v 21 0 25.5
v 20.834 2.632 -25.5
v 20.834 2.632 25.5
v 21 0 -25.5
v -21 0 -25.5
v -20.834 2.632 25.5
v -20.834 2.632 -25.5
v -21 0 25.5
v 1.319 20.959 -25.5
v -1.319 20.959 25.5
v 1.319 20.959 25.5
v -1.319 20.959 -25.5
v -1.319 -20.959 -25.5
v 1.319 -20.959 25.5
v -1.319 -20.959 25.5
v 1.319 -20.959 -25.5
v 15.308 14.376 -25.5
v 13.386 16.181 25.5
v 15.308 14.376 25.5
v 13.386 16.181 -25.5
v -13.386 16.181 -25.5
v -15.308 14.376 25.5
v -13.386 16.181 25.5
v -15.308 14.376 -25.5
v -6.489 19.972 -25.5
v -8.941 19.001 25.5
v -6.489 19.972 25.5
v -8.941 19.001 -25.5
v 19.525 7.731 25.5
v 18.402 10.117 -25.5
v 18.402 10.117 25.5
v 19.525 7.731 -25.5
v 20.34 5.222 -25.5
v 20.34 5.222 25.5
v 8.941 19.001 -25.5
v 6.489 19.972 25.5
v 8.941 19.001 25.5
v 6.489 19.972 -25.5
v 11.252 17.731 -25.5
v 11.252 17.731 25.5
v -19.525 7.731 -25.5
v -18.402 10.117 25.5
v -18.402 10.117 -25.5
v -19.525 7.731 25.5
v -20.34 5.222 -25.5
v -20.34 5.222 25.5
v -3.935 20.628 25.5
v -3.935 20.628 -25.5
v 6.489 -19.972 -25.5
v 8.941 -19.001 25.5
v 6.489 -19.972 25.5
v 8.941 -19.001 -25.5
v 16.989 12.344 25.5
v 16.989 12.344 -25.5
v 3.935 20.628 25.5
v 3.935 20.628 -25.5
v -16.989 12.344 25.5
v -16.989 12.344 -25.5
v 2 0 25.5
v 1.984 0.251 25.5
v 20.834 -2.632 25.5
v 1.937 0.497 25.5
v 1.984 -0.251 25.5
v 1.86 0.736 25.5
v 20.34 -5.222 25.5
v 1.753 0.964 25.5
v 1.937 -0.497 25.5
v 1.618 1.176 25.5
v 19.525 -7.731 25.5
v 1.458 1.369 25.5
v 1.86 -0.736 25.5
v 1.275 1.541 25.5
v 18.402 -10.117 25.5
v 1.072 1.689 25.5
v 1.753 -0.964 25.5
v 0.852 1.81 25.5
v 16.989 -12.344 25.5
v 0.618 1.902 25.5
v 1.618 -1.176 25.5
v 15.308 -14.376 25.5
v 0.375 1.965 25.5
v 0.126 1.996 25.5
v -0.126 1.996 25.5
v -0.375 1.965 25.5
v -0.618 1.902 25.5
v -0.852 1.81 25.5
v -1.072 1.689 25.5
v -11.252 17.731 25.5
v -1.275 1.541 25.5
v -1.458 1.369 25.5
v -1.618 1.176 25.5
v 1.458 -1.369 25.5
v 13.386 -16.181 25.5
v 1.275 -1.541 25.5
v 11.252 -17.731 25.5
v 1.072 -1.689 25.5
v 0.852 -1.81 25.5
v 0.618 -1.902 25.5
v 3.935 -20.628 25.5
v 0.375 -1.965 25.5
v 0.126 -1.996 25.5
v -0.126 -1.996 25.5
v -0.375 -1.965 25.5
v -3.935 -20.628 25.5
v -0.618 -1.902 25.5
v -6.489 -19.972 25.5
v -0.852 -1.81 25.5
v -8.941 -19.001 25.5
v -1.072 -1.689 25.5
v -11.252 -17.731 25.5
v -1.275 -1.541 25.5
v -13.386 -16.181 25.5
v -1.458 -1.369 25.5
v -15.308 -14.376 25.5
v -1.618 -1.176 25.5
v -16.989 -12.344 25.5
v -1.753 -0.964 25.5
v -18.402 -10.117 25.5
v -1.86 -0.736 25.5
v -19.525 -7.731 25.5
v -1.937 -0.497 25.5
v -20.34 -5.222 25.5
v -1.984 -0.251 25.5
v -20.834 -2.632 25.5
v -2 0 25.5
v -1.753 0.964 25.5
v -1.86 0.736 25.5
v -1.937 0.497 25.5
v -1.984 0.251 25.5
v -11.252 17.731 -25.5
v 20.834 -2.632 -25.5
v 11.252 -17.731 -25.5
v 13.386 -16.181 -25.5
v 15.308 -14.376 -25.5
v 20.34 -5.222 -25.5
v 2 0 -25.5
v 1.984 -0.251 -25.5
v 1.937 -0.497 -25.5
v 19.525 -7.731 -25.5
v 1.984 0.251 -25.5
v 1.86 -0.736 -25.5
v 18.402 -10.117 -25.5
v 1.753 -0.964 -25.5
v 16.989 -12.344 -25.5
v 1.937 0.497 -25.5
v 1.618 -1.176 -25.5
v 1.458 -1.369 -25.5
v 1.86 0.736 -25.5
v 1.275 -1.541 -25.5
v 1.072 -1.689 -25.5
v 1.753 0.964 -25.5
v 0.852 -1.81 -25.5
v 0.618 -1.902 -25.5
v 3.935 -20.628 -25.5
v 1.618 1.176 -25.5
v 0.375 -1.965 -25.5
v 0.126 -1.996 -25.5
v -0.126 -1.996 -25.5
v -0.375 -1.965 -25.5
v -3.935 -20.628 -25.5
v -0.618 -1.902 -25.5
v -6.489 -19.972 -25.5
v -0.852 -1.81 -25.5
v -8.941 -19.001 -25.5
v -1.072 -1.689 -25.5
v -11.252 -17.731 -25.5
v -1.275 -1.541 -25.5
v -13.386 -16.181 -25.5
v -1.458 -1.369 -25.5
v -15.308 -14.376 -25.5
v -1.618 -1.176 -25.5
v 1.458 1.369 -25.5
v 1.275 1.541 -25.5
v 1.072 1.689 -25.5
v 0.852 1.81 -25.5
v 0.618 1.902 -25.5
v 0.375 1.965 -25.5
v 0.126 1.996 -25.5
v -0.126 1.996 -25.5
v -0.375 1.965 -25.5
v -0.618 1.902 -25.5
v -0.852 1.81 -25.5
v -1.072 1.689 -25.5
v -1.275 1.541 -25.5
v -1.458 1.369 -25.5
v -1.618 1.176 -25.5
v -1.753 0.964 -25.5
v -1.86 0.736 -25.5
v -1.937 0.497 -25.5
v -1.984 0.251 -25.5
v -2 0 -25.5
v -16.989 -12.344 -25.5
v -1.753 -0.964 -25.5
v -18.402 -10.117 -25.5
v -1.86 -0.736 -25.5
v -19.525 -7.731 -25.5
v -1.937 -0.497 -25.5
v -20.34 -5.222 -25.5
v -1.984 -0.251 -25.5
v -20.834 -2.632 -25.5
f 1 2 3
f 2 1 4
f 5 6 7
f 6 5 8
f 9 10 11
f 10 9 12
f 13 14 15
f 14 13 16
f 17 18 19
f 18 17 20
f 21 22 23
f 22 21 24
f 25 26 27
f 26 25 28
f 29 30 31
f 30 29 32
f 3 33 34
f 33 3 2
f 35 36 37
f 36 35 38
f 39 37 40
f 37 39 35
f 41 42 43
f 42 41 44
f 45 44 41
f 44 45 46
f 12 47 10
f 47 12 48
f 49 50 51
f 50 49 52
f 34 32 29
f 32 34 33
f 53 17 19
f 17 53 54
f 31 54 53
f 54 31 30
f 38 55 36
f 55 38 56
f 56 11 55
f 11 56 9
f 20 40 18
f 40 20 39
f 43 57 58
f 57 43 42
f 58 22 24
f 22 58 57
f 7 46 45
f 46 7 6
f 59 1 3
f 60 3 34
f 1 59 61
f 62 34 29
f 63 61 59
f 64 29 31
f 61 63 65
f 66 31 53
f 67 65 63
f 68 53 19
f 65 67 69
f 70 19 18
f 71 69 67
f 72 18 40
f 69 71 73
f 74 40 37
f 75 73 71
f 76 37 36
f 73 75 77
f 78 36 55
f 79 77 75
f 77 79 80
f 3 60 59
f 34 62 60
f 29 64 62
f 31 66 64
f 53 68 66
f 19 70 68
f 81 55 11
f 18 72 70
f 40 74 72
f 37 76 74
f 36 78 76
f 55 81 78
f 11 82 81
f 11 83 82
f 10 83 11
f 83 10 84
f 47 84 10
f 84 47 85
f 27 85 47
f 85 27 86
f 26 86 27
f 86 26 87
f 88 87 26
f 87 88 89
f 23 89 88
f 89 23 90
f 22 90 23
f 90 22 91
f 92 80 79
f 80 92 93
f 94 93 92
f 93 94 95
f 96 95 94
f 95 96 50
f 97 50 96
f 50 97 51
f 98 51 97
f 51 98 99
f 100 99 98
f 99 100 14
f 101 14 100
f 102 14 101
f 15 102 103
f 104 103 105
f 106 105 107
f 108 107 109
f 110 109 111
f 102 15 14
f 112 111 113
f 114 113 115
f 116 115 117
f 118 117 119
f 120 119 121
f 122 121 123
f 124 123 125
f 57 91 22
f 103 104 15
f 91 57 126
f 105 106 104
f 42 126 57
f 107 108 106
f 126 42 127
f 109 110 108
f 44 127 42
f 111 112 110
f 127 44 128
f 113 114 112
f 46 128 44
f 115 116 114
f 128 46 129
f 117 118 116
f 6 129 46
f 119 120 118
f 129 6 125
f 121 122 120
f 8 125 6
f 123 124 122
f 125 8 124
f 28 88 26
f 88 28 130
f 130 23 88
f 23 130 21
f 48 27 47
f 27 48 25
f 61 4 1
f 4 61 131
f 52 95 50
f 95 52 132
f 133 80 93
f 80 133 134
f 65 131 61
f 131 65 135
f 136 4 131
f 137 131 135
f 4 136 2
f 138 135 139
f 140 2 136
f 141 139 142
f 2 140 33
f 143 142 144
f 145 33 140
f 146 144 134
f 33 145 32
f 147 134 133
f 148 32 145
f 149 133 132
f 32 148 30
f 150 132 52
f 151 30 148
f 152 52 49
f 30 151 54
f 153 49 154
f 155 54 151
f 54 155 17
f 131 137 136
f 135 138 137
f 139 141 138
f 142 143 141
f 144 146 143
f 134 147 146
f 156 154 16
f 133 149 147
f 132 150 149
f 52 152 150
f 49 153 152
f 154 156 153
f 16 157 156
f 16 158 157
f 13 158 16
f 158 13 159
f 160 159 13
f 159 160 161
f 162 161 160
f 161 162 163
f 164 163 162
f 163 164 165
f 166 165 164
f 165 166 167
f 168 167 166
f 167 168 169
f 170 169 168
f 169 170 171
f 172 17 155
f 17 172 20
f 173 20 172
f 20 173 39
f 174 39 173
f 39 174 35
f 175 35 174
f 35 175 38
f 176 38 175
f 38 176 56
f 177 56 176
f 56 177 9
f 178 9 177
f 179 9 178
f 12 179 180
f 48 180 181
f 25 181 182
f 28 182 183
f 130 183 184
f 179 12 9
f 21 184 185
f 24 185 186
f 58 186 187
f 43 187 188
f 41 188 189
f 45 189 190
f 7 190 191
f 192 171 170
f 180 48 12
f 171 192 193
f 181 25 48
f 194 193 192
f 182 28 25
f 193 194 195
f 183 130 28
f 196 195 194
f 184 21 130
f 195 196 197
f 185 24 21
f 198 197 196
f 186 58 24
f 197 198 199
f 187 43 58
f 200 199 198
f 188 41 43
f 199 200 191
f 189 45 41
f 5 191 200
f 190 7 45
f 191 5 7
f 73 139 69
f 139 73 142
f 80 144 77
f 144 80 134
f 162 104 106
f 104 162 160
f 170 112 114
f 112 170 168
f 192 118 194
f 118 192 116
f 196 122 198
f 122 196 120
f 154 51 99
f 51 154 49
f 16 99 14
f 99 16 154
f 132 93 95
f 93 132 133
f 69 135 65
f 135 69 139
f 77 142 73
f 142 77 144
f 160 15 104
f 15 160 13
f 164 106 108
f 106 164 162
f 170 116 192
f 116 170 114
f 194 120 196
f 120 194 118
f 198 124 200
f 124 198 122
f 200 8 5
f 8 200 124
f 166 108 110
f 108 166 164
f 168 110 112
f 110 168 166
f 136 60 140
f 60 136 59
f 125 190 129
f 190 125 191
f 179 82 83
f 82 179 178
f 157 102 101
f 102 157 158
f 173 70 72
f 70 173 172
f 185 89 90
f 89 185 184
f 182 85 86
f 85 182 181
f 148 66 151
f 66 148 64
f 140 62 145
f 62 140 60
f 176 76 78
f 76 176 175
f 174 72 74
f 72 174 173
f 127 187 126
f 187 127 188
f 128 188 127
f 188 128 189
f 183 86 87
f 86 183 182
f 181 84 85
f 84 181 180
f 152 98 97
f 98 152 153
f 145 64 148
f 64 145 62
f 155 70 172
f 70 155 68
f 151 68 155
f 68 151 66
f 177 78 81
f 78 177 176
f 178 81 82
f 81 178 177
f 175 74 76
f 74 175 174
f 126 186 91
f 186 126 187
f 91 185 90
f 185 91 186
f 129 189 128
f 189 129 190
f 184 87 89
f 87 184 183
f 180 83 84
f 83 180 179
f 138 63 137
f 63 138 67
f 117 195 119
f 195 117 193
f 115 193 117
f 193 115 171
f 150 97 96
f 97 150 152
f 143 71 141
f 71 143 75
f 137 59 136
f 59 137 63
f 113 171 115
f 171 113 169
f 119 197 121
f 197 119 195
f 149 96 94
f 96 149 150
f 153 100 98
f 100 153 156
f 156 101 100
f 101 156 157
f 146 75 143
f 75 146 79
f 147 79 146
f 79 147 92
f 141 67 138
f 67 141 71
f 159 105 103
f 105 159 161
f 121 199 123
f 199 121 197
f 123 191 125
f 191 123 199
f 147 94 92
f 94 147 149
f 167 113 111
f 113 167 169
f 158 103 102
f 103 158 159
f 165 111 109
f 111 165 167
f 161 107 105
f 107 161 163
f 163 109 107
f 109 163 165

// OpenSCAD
$fn = 50;


difference() {
	union() {
		translate(v = [0, 0, -25.5000000000]) {
			cylinder(h = 51, r = 21.0000000000);
		}
	}
	union() {
		translate(v = [0, 0, -100.0000000000]) {
			cylinder(h = 200, r = 2);
		}
	}
}
